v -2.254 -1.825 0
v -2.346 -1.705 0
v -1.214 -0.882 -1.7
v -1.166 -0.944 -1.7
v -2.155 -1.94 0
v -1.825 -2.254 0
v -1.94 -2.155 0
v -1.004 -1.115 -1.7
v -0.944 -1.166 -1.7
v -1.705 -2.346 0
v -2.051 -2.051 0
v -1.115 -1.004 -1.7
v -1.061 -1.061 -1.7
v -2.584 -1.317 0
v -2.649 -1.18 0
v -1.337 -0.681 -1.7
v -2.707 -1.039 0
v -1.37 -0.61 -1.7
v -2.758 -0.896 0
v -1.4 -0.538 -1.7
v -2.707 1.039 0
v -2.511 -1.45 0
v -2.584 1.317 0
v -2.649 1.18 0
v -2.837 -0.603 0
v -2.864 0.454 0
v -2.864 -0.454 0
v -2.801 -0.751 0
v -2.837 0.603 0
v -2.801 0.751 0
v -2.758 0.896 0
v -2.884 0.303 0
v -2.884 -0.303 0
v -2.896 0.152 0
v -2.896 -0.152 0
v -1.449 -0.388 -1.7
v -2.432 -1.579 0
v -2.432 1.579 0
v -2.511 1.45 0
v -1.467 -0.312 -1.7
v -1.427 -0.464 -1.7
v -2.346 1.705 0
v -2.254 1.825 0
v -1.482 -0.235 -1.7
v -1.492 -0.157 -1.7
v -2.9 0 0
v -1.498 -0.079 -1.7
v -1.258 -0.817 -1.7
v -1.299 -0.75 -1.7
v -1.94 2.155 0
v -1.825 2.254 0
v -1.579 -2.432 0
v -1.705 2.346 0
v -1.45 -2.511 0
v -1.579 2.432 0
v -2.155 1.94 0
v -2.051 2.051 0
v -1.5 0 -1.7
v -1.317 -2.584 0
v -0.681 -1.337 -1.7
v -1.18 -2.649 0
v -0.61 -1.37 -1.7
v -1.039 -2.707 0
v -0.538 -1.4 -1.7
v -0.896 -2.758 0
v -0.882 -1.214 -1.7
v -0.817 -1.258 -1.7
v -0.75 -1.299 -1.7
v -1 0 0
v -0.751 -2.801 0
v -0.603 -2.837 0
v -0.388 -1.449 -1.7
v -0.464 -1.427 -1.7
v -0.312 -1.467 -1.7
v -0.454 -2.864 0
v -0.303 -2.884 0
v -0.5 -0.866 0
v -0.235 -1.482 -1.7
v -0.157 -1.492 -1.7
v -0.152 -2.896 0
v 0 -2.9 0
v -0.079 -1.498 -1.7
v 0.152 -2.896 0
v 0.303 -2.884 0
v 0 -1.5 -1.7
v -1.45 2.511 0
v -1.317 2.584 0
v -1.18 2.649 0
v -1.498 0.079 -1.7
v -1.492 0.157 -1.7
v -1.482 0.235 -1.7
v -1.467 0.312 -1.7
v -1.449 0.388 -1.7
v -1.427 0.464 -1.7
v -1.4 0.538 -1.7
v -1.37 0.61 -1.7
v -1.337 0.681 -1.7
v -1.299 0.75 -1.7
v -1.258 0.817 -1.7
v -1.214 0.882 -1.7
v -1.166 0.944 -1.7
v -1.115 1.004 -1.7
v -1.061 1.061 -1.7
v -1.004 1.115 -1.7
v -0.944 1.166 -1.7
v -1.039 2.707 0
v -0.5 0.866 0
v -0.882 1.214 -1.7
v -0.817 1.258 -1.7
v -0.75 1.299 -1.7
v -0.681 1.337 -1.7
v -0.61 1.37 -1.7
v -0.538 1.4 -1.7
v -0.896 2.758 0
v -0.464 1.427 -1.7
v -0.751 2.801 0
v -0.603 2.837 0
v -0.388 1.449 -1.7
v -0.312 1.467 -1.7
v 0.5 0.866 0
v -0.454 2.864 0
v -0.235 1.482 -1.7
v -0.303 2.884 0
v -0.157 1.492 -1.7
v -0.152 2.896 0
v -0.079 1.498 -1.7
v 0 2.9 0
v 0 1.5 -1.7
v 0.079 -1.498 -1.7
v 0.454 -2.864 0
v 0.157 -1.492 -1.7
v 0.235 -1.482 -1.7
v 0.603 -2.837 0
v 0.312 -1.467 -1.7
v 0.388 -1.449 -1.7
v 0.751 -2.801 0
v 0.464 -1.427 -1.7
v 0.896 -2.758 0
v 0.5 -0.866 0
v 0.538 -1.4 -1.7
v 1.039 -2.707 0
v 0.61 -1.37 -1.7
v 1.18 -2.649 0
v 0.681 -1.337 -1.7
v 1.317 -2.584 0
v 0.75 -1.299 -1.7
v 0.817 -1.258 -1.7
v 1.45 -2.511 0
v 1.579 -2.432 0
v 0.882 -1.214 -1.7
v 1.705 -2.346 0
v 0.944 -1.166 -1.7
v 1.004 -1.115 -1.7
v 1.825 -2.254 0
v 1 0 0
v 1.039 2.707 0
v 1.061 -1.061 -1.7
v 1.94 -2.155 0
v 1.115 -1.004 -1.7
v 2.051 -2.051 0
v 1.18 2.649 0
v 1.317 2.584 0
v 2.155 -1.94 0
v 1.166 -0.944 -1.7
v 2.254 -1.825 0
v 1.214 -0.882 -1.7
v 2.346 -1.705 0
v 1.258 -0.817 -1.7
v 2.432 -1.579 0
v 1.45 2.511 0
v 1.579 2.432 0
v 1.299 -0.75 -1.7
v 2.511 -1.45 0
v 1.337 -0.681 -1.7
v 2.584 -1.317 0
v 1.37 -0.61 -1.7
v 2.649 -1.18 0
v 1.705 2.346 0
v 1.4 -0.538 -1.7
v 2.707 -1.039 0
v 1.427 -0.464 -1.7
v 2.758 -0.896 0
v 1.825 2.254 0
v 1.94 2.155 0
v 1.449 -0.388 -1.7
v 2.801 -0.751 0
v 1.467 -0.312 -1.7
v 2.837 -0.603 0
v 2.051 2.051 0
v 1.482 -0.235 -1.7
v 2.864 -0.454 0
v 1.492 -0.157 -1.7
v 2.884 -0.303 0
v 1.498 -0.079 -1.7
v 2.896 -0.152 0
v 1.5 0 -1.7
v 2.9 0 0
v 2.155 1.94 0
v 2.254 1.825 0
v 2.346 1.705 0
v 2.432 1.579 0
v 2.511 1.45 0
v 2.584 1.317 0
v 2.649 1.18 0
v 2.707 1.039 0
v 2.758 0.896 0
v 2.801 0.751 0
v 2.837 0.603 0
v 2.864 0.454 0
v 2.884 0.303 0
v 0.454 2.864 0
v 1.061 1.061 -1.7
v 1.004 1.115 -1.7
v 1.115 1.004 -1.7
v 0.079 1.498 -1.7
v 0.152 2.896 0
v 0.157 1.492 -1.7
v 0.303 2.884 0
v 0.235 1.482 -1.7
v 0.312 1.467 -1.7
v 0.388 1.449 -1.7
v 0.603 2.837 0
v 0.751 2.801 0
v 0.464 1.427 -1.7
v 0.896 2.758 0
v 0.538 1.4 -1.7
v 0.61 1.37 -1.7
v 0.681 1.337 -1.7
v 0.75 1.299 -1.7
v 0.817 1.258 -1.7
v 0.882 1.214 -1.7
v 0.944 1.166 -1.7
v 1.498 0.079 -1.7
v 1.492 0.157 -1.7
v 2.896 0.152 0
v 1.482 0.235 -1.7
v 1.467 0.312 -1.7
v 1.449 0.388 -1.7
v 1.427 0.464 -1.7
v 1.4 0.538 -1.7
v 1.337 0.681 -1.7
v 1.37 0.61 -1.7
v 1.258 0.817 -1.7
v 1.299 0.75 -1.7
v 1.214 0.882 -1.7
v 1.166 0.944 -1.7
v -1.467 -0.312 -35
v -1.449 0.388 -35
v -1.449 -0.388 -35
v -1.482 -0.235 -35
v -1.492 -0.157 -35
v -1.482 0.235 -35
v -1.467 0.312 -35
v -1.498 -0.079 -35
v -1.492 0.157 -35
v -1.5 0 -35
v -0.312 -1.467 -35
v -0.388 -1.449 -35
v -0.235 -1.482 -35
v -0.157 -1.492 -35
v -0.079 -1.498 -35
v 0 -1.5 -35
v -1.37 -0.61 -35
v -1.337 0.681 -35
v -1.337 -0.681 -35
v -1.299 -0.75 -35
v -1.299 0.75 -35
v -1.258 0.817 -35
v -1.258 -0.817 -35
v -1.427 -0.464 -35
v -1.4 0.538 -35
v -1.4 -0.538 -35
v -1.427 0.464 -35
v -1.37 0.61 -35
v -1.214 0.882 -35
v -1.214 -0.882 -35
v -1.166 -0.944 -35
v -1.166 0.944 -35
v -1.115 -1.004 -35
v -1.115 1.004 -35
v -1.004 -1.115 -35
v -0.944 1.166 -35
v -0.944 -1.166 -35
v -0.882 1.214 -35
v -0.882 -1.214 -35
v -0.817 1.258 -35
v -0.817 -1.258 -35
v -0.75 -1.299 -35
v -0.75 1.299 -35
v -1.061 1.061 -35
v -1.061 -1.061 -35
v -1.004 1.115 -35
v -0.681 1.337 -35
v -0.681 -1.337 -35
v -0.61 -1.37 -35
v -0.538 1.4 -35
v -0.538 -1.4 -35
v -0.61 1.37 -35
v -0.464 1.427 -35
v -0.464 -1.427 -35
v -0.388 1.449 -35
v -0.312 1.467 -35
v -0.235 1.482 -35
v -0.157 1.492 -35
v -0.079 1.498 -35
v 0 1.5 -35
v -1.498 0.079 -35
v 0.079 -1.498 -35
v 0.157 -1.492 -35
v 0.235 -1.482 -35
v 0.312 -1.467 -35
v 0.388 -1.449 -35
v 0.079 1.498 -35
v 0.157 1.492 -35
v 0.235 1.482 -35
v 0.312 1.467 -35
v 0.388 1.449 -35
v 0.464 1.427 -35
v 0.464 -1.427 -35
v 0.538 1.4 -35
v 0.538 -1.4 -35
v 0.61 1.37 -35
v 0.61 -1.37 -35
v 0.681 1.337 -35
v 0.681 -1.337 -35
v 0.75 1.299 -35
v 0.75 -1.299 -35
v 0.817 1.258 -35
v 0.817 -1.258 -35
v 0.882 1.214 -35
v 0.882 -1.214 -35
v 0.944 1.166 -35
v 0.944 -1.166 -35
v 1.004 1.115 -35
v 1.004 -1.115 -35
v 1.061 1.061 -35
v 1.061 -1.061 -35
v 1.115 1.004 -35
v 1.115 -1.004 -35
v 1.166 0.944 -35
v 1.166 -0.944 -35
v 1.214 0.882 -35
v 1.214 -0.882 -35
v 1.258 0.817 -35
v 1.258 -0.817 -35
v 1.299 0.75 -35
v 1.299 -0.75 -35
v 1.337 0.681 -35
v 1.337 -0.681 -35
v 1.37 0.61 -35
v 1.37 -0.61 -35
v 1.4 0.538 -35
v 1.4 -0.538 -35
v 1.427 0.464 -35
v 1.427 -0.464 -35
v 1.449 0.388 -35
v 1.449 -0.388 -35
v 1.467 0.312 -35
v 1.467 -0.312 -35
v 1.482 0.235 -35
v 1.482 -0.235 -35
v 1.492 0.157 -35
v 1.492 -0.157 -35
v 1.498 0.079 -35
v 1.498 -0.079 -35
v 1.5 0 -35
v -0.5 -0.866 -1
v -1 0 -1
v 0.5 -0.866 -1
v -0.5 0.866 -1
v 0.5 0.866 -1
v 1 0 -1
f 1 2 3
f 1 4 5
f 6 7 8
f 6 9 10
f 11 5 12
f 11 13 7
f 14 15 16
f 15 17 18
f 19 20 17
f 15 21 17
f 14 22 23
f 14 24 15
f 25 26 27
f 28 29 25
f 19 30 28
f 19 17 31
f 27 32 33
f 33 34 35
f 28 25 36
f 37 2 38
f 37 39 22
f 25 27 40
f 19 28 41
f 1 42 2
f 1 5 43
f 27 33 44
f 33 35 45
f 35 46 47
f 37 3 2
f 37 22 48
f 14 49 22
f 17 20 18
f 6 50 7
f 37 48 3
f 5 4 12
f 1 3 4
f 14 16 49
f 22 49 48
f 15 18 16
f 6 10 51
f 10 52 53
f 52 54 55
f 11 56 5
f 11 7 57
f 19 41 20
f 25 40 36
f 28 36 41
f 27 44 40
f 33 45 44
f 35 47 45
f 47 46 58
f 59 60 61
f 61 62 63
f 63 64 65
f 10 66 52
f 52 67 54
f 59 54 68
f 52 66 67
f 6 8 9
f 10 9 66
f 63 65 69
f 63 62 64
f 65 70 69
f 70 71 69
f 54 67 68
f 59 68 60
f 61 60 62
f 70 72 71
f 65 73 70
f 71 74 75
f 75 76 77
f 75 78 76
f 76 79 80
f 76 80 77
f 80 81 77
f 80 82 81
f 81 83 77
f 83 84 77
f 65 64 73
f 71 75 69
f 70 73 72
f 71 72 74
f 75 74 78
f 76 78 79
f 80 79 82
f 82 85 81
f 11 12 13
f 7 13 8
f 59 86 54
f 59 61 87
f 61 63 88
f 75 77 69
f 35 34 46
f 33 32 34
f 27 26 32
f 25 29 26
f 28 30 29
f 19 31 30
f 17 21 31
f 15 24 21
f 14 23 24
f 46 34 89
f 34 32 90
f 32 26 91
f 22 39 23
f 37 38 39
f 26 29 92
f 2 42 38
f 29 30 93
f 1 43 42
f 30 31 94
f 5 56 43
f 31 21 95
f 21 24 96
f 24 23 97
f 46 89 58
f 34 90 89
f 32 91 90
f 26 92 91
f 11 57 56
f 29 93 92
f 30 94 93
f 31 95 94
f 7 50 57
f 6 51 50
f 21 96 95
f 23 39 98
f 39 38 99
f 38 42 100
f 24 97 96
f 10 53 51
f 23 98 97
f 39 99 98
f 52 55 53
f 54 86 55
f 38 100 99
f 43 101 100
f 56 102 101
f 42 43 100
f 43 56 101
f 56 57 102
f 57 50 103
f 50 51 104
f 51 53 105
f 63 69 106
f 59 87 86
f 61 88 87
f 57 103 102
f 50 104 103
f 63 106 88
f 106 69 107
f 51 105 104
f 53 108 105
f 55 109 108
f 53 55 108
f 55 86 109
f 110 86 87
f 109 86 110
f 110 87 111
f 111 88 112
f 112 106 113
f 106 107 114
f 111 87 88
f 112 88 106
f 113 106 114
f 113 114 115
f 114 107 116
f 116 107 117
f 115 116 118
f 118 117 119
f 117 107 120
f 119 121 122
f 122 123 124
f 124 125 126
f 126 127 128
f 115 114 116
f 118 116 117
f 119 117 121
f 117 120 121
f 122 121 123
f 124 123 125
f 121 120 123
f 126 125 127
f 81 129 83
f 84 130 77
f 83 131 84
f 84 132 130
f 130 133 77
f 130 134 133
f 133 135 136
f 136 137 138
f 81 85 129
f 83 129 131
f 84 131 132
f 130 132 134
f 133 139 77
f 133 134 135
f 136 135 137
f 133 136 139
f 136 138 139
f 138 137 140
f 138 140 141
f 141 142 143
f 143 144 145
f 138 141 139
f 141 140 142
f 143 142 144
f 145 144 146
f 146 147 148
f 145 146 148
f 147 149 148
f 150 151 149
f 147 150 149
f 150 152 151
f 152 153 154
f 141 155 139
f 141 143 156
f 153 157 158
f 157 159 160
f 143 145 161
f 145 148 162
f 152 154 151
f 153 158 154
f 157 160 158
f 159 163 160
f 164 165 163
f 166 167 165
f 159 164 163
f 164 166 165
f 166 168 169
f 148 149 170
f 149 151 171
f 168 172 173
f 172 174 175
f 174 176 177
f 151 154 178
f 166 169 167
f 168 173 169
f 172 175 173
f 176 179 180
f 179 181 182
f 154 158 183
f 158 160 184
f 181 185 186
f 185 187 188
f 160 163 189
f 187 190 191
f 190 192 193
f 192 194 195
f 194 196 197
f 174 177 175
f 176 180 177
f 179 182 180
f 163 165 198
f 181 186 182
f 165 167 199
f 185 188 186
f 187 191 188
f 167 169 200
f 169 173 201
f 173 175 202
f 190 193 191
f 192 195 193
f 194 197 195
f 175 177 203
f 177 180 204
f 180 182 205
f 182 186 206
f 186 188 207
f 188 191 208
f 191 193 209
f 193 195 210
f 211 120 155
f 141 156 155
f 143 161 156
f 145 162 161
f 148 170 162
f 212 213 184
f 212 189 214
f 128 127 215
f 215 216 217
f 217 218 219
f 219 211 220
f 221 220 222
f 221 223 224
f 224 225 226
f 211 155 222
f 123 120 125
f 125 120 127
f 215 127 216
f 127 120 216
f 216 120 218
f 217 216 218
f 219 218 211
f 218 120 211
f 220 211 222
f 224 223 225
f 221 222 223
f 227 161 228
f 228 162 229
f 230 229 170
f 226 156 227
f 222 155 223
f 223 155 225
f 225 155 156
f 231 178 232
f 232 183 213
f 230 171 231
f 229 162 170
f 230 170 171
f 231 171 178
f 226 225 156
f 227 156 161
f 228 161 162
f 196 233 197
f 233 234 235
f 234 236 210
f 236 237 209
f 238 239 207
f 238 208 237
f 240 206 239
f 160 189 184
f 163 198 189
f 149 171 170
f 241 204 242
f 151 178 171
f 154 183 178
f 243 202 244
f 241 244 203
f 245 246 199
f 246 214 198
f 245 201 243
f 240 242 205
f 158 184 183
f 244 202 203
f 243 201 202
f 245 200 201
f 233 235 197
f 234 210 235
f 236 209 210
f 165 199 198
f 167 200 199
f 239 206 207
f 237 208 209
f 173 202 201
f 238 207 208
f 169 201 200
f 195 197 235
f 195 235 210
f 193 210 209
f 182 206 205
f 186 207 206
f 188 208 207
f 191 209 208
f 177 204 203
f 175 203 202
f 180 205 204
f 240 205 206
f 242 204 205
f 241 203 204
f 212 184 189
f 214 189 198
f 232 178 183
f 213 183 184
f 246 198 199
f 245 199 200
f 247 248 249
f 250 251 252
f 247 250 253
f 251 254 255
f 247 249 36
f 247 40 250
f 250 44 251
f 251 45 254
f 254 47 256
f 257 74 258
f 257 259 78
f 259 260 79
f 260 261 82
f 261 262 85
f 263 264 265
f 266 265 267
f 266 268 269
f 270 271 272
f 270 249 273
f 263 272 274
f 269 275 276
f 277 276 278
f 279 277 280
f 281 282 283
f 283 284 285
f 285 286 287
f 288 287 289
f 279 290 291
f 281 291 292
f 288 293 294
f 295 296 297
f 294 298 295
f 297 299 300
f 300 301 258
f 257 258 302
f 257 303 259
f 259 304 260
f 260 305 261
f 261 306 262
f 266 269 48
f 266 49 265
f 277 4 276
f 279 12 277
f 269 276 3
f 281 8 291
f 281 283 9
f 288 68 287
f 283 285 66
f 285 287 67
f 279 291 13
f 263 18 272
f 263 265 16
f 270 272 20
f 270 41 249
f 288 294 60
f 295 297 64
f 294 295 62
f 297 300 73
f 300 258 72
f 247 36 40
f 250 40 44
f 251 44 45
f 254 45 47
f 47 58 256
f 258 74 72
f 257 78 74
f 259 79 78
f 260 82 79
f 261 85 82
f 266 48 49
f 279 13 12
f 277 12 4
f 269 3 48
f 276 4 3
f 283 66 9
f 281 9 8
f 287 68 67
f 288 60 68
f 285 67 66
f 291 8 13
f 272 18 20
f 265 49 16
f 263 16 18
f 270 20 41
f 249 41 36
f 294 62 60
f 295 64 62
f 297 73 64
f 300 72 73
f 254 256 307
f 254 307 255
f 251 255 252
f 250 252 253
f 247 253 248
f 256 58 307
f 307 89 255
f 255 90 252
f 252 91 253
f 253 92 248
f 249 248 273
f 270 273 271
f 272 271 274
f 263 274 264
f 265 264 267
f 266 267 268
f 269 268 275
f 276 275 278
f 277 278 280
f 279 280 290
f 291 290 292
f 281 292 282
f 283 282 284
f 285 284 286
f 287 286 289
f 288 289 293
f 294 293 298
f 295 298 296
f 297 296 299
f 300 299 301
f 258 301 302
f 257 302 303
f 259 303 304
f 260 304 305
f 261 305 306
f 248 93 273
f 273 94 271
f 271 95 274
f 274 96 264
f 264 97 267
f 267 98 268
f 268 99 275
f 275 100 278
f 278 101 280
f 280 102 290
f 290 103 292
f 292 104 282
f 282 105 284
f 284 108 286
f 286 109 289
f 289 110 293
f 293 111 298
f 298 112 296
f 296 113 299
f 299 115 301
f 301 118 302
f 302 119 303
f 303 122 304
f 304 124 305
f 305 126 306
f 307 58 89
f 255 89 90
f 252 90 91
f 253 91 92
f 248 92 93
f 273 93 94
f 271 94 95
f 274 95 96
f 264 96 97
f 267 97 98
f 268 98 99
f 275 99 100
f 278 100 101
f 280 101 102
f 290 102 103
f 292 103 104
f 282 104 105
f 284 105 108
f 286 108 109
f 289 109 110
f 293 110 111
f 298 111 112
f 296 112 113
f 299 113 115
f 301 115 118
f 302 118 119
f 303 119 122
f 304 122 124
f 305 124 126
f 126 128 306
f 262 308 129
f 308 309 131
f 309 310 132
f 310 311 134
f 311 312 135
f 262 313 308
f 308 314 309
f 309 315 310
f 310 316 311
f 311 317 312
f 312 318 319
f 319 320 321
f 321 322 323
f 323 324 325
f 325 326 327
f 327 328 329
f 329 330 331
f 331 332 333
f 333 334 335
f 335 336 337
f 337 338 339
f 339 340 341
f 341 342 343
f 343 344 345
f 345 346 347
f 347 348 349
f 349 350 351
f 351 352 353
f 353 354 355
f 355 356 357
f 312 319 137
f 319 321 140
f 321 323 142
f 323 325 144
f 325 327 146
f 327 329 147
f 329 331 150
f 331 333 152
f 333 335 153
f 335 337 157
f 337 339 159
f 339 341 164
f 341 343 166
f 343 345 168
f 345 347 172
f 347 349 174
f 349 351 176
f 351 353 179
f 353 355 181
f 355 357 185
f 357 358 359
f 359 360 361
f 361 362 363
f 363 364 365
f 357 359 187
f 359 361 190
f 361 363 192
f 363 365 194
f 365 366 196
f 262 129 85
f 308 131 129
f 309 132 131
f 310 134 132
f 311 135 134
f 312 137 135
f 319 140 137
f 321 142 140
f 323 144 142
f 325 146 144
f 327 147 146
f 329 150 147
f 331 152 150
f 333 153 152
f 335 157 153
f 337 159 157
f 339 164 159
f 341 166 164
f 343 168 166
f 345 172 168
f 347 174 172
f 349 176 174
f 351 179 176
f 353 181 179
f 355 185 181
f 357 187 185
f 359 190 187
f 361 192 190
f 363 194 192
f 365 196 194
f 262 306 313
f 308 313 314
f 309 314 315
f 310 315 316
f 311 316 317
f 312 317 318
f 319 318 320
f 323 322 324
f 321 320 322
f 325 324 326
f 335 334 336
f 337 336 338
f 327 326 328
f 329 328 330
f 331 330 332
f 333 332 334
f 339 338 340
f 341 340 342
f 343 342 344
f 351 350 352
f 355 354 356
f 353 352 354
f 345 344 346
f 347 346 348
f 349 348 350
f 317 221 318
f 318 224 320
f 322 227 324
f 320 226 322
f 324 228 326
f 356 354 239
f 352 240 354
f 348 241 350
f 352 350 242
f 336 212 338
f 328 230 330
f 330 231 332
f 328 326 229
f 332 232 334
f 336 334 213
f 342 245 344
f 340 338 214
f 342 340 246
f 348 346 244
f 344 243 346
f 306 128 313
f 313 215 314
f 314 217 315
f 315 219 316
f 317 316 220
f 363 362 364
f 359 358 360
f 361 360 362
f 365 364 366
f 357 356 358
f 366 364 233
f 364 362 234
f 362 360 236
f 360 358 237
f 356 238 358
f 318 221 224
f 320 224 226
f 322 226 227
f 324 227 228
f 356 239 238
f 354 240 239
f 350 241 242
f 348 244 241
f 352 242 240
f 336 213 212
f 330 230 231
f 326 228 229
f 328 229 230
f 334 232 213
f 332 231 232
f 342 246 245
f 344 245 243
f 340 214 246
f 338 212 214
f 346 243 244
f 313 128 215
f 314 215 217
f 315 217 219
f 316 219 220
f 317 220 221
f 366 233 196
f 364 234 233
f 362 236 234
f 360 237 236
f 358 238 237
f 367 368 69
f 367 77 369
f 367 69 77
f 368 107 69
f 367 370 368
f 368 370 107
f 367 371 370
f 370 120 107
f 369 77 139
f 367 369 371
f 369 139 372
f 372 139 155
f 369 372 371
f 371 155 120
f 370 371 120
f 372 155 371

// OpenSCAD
// file: C:/od/OneDrive/Documents/ChatGPT/oomlout_oobb_part_motor_gearbox_wave_drive_version_5/parts/oobb_part_motor_gearbox_wave_drive_version_5_20_to_1_reduction/compact_helpers.scad
// Reusable native geometry helpers.
function polar(r,a)=[r*cos(a),r*sin(a)];
function rotate_point(p,a)=[p[0]*cos(a)-p[1]*sin(a),p[0]*sin(a)+p[1]*cos(a)];
function profile_point(t)=let(
    s=sqrt(pow(pitch_radius,2)-pow(eccentricity*sin(cavity_count*t),2)),
    r=eccentricity*cos(cavity_count*t)+s,
    xi=atan2(eccentricity*cavity_count*sin(cavity_count*t),s),
    rr=roller_radius+profile_clearance)
    [r*cos(t)+rr*cos(t+xi),r*sin(t)+rr*sin(t+xi)];
function profile_points(upper=false)=[for(i=[0:cavity_count*profile_samples_per_cavity-1])
    rotate_point(profile_point(360*i/(cavity_count*profile_samples_per_cavity)),0)];
function roller_position(i,a,upper=false)=let(
    t=-a/roller_count+360*i/roller_count,
    rel=t-a-(upper?180:0),
    r=eccentricity*cos(rel)+sqrt(pow(pitch_radius,2)-pow(eccentricity*sin(rel),2))) polar(r,t);
module tube(ro,ri,h) { difference() { cylinder(r=ro,h=h); translate([0,0,-eps]) cylinder(r=ri,h=h+2*eps); } }
module screw_hole(size,h) { scale([1,1,h]) { if(size=="m2") oobb_hole_m2(); if(size=="m3") oobb_hole_m3(); if(size=="m6") oobb_hole_m6(); } }
module socket_recess(size,depth) {
    // OOBB socket head starts at the under-head plane and extends outward.
    scale([1,1,depth/(size=="m3"?3.2:2.2)]) {
        if(size=="m3") oobb_socket_m3(); else oobb_socket_m2();
    }
}
module at_mounts(points) { for(p=points) translate([p[0],p[1],0]) children(); }
module shaft_cut(h,fit=shaft_fit_clearance) {
    linear_extrude(h) intersection() {
        circle(r=input_shaft_diameter/2+fit);
        translate([-10,-10]) square([10+input_shaft_diameter/2-input_shaft_flat_depth+fit,20]);
    }
}
module rounded_rectangle_plate(size=[119,119,3],radius=1.5) {
    hull() for(x=[-1,1],y=[-1,1]) translate([x*(size[0]/2-radius),y*(size[1]/2-radius),0]) cylinder(r=radius,h=size[2]);
}
module grid_cuts(h) {
    // Actual OOBB grid centres: six units are centred on half-pitch offsets.
    for(i=[0:base_width-1],j=[0:base_height-1])
        let(x=(i-(base_width-1)/2)*oobb_grid_pitch,y=(j-(base_height-1)/2)*oobb_grid_pitch)
        if(sqrt(x*x+y*y)>housing_radius+3.5)
            translate([x,y,-eps]) screw_hole("m6",h+2*eps);
}
module wave_generator() {
    render(convexity=20) difference() {
        tube(wave_radius,12.6,wave_height);
        translate([0,0,wave_seat_z]) cylinder(r=13.5+bearing_seat_clearance,h=wave_height);
        translate([0,0,wave_height-wave_cap_depth]) cylinder(r=22.15,h=wave_cap_depth+eps);
        at_mounts(wave_mounts) {
            translate([0,0,-eps]) screw_hole("m3",wave_height+2*eps);
            translate([0,0,wave_nut_z]) scale([1,1,(wave_height-wave_cap_depth-wave_nut_z+eps)/2.7]) oobb_nut_m3();
        }
    }
}
module wave_cap() {
    render(convexity=20) difference() {
        tube(22,12.6,wave_cap_depth);
        at_mounts(wave_mounts) {
            translate([0,0,-eps]) screw_hole("m3",wave_cap_depth+2*eps);
            translate([0,0,wave_cap_depth-wave_head_recess]) socket_recess("m3",wave_head_recess+eps);
        }
    }
}
// file: C:/od/OneDrive/Documents/ChatGPT/oomlout_oobb_part_motor_gearbox_wave_drive_version_5/parts/oobb_part_motor_gearbox_wave_drive_version_5_20_to_1_reduction/oobb_hardware.scad
module oobb_rounded_rectangle_edges(size, radius, radius_top, radius_bottom) {
      rt=radius_top; rb=radius_bottom; depth=size[2]; n=16;
      lower=rb==0 ? [[radius,0]] :
        [for(i=[0:n]) let(a=-90+90*i/n) [radius-rb+rb*cos(a),rb+rb*sin(a)]];
      upper=rt==0 ? [[radius,depth]] :
        [for(i=[0:n]) let(a=90*i/n) [radius-rt+rt*cos(a),depth-rt+rt*sin(a)]];
      hull() for(x=[-size[0]/2+radius,size[0]/2-radius])
        for(y=[-size[1]/2+radius,size[1]/2-radius])
          translate([x,y,0]) rotate_extrude()
            polygon(concat([[0,0]],lower,upper,[[0,depth]]));
    }
// Generated from installed OOBB v5. All primitives use overhang=True.

module oobb_motor_plate_body() {


difference() {
	union() {
		translate(v = [0, 0, 0]) {
			rotate(a = [0, 0, 0]) {
				difference() {
					union() {
						oobb_rounded_rectangle_edges(radius = 1.5, radius_bottom = 1.5, radius_top = 1.5, size = [89.0, 89.0, 4.0]);
					}
					union();
				}
			}
		}
	}
	union();
}

}

module oobb_hole_m2() {


difference() {
	union() {
		cylinder(h = 1, r = 1.35);
	}
	union();
}

}

module oobb_hole_m3() {


difference() {
	union() {
		cylinder(h = 1, r = 1.8);
	}
	union();
}

}

module oobb_hole_m6() {


difference() {
	union() {
		cylinder(h = 1, r = 3.25);
	}
	union();
}

}

module oobb_nut_m2() {


difference() {
	union() {
		translate(v = [0, 0, 0]) {
			rotate(a = [0, 0, 0]) {
				difference() {
					union() {
						linear_extrude(height = 2.2) {
							polygon(points = [[2.4234, 0.0], [1.2117000000000002, 2.0987259635312085], [-1.2116999999999996, 2.0987259635312085], [-2.4234, 2.967809053053696e-16], [-1.211700000000001, -2.098725963531208], [1.2116999999999984, -2.0987259635312094]]);
						}
						translate(v = [-1.25, -2.75, -0.3]) {
							cube(size = [2.5, 5.5, 0.3]);
						}
						translate(v = [-1.25, -1.25, -0.6]) {
							cube(size = [2.5, 2.5, 0.3]);
						}
						translate(v = [-1.25, -2.75, 2.2]) {
							cube(size = [2.5, 5.5, 0.3]);
						}
						translate(v = [-1.25, -1.25, 2.5]) {
							cube(size = [2.5, 2.5, 0.3]);
						}
					}
					union();
				}
			}
		}
	}
	union();
}

}

module oobb_socket_m2() {


difference() {
	union() {
		translate(v = [0, 0, 0]) {
			rotate(a = [0, 0, 0]) {
				difference() {
					union() {
						cylinder(h = 2.2, r = 2.1);
						translate(v = [-1.25, -2.75, -0.3]) {
							cube(size = [2.5, 5.5, 0.3]);
						}
						translate(v = [-1.25, -1.25, -0.6]) {
							cube(size = [2.5, 2.5, 0.3]);
						}
					}
					union();
				}
			}
		}
	}
	union();
}

}

module oobb_nut_m3() {


difference() {
	union() {
		translate(v = [0, 0, 0]) {
			rotate(a = [0, 0, 0]) {
				difference() {
					union() {
						linear_extrude(height = 2.7) {
							polygon(points = [[3.4619999999999997, 0.0], [1.7310000000000003, 2.9981799479017264], [-1.7309999999999992, 2.9981799479017264], [-3.4619999999999997, 4.2397272186481365e-16], [-1.7310000000000014, -2.998179947901726], [1.7309999999999977, -2.9981799479017277]]);
						}
						translate(v = [-1.75, -3.25, -0.3]) {
							cube(size = [3.5, 6.5, 0.3]);
						}
						translate(v = [-1.75, -1.75, -0.6]) {
							cube(size = [3.5, 3.5, 0.3]);
						}
						translate(v = [-1.75, -3.25, 2.7]) {
							cube(size = [3.5, 6.5, 0.3]);
						}
						translate(v = [-1.75, -1.75, 3.0]) {
							cube(size = [3.5, 3.5, 0.3]);
						}
					}
					union();
				}
			}
		}
	}
	union();
}

}

module oobb_socket_m3() {


difference() {
	union() {
		translate(v = [0, 0, 0]) {
			rotate(a = [0, 0, 0]) {
				difference() {
					union() {
						cylinder(h = 3.2, r = 3.0);
						translate(v = [-1.75, -3.25, -0.3]) {
							cube(size = [3.5, 6.5, 0.3]);
						}
						translate(v = [-1.75, -1.75, -0.6]) {
							cube(size = [3.5, 3.5, 0.3]);
						}
					}
					union();
				}
			}
		}
	}
	union();
}

}

module oobb_nut_m6() {


difference() {
	union() {
		translate(v = [0, 0, 0]) {
			rotate(a = [0, 0, 0]) {
				difference() {
					union() {
						linear_extrude(height = 5.2) {
							polygon(points = [[5.914249999999999, 0.0], [2.957125, 5.1218907443321156], [-2.9571249999999982, 5.1218907443321156], [-5.914249999999999, 7.242867331857232e-16], [-2.9571250000000022, -5.121890744332115], [2.9571249999999956, -5.121890744332118]]);
						}
						translate(v = [-2.875, -5.0, -0.3]) {
							cube(size = [5.75, 10, 0.3]);
						}
						translate(v = [-2.875, -2.875, -0.6]) {
							cube(size = [5.75, 5.75, 0.3]);
						}
						translate(v = [-2.875, -5.0, 5.2]) {
							cube(size = [5.75, 10, 0.3]);
						}
						translate(v = [-2.875, -2.875, 5.5]) {
							cube(size = [5.75, 5.75, 0.3]);
						}
					}
					union();
				}
			}
		}
	}
	union();
}

}
// file: C:/od/OneDrive/Documents/ChatGPT/oomlout_oobb_part_motor_gearbox_wave_drive_version_5/parts/oobb_part_motor_gearbox_wave_drive_version_5_20_to_1_reduction/parameters.scad
// Generated by working_scad.py. Edit the Python recipe to persist changes.
style = "version_5";
reduction = 12;
bearing_output = "6810";
bearing_wave = "6704";
roller_diameter = 7.0;
roller_bore_diameter = 3.2;
roller_length = 12.0;
roller_material = "nylon";
roller_bank_count = 1;
motor_plate_depth = 4.0;
motor_body_depth = 40.0;
motor_shaft_length = 24.0;
motor_hole_pitch = 31.0;
motor_thread_depth = 6.0;
motor_pilot_diameter = 22.0;
motor_pilot_height = 2.0;
output_holder_wall = 7.0;
max_screw_length = 35.0;
eccentricity = 0.75;
wave_radius = 23.25;
profile_clearance = 0.15;
roller_slot_clearance = 0.3;
roller_end_clearance = 0.3;
cage_wall = 4.0;
cage_plate_depth = 3.0;
bearing_seat_clearance = 0.1;
journal_clearance = 0.05;
bearing_axial_clearance = 0.2;
output_plate_diameter = 65.0;
output_plate_depth = 6.0;
output_grid_pitch = 15.0;
output_face_clearance = 0.3;
output_socket_recess = 4.0;
output_screw_length = 16;
output_nut_depth = 5.2;
output_nut_height = 5.0;
motor_shaft_end_clearance = 0.5;
base_width = 6;
base_height = 6;
oobb_grid_pitch = 15.0;
oobb_size_allowance = 1.0;
base_edge_radius = 1.5;
housing_flange_corner_radius = 1.5;
housing_screw_pitch_radius = 35.5;
housing_screw_count = 6;
input_shaft_diameter = 5.0;
input_shaft_flat_depth = 0.5;
shaft_fit_clearance = 0.1;
cage_screw_count = 4;
profile_samples_per_cavity = 100;
circle_fragments = 120;
overhang = true;
run_scad = true;
run_solidcraft = false;
generate_stl = true;
generate_previews = true;
generate_renders = true;
validate_geometry = true;
package_outputs = true;
render_threads = 8;
variant = "default";
// main file
include <C:/od/OneDrive/Documents/ChatGPT/oomlout_oobb_part_motor_gearbox_wave_drive_version_5/parts/oobb_part_motor_gearbox_wave_drive_version_5_20_to_1_reduction/parameters.scad>
include <C:/od/OneDrive/Documents/ChatGPT/oomlout_oobb_part_motor_gearbox_wave_drive_version_5/parts/oobb_part_motor_gearbox_wave_drive_version_5_20_to_1_reduction/oobb_hardware.scad>
include <C:/od/OneDrive/Documents/ChatGPT/oomlout_oobb_part_motor_gearbox_wave_drive_version_5/parts/oobb_part_motor_gearbox_wave_drive_version_5_20_to_1_reduction/geometry.scad>
difference() { difference() {
	union() {
		translate(v = [0, 0, 0]) {
			rotate(a = [0, 0, 0]) {
				difference() {
					union() {
						translate(v = [0, 0, -1.7]) {
							cylinder(h = 1.7, r1 = 1.5, r2 = 2.9);
						}
						translate(v = [0, 0, -35.0]) {
							cylinder(h = 35.0, r = 1.5);
						}
					}
					union();
				}
			}
		}
	}
	union();
}
 translate([0,0,-1]) cylinder(r=1.0,h=1.01,$fn=6); }
